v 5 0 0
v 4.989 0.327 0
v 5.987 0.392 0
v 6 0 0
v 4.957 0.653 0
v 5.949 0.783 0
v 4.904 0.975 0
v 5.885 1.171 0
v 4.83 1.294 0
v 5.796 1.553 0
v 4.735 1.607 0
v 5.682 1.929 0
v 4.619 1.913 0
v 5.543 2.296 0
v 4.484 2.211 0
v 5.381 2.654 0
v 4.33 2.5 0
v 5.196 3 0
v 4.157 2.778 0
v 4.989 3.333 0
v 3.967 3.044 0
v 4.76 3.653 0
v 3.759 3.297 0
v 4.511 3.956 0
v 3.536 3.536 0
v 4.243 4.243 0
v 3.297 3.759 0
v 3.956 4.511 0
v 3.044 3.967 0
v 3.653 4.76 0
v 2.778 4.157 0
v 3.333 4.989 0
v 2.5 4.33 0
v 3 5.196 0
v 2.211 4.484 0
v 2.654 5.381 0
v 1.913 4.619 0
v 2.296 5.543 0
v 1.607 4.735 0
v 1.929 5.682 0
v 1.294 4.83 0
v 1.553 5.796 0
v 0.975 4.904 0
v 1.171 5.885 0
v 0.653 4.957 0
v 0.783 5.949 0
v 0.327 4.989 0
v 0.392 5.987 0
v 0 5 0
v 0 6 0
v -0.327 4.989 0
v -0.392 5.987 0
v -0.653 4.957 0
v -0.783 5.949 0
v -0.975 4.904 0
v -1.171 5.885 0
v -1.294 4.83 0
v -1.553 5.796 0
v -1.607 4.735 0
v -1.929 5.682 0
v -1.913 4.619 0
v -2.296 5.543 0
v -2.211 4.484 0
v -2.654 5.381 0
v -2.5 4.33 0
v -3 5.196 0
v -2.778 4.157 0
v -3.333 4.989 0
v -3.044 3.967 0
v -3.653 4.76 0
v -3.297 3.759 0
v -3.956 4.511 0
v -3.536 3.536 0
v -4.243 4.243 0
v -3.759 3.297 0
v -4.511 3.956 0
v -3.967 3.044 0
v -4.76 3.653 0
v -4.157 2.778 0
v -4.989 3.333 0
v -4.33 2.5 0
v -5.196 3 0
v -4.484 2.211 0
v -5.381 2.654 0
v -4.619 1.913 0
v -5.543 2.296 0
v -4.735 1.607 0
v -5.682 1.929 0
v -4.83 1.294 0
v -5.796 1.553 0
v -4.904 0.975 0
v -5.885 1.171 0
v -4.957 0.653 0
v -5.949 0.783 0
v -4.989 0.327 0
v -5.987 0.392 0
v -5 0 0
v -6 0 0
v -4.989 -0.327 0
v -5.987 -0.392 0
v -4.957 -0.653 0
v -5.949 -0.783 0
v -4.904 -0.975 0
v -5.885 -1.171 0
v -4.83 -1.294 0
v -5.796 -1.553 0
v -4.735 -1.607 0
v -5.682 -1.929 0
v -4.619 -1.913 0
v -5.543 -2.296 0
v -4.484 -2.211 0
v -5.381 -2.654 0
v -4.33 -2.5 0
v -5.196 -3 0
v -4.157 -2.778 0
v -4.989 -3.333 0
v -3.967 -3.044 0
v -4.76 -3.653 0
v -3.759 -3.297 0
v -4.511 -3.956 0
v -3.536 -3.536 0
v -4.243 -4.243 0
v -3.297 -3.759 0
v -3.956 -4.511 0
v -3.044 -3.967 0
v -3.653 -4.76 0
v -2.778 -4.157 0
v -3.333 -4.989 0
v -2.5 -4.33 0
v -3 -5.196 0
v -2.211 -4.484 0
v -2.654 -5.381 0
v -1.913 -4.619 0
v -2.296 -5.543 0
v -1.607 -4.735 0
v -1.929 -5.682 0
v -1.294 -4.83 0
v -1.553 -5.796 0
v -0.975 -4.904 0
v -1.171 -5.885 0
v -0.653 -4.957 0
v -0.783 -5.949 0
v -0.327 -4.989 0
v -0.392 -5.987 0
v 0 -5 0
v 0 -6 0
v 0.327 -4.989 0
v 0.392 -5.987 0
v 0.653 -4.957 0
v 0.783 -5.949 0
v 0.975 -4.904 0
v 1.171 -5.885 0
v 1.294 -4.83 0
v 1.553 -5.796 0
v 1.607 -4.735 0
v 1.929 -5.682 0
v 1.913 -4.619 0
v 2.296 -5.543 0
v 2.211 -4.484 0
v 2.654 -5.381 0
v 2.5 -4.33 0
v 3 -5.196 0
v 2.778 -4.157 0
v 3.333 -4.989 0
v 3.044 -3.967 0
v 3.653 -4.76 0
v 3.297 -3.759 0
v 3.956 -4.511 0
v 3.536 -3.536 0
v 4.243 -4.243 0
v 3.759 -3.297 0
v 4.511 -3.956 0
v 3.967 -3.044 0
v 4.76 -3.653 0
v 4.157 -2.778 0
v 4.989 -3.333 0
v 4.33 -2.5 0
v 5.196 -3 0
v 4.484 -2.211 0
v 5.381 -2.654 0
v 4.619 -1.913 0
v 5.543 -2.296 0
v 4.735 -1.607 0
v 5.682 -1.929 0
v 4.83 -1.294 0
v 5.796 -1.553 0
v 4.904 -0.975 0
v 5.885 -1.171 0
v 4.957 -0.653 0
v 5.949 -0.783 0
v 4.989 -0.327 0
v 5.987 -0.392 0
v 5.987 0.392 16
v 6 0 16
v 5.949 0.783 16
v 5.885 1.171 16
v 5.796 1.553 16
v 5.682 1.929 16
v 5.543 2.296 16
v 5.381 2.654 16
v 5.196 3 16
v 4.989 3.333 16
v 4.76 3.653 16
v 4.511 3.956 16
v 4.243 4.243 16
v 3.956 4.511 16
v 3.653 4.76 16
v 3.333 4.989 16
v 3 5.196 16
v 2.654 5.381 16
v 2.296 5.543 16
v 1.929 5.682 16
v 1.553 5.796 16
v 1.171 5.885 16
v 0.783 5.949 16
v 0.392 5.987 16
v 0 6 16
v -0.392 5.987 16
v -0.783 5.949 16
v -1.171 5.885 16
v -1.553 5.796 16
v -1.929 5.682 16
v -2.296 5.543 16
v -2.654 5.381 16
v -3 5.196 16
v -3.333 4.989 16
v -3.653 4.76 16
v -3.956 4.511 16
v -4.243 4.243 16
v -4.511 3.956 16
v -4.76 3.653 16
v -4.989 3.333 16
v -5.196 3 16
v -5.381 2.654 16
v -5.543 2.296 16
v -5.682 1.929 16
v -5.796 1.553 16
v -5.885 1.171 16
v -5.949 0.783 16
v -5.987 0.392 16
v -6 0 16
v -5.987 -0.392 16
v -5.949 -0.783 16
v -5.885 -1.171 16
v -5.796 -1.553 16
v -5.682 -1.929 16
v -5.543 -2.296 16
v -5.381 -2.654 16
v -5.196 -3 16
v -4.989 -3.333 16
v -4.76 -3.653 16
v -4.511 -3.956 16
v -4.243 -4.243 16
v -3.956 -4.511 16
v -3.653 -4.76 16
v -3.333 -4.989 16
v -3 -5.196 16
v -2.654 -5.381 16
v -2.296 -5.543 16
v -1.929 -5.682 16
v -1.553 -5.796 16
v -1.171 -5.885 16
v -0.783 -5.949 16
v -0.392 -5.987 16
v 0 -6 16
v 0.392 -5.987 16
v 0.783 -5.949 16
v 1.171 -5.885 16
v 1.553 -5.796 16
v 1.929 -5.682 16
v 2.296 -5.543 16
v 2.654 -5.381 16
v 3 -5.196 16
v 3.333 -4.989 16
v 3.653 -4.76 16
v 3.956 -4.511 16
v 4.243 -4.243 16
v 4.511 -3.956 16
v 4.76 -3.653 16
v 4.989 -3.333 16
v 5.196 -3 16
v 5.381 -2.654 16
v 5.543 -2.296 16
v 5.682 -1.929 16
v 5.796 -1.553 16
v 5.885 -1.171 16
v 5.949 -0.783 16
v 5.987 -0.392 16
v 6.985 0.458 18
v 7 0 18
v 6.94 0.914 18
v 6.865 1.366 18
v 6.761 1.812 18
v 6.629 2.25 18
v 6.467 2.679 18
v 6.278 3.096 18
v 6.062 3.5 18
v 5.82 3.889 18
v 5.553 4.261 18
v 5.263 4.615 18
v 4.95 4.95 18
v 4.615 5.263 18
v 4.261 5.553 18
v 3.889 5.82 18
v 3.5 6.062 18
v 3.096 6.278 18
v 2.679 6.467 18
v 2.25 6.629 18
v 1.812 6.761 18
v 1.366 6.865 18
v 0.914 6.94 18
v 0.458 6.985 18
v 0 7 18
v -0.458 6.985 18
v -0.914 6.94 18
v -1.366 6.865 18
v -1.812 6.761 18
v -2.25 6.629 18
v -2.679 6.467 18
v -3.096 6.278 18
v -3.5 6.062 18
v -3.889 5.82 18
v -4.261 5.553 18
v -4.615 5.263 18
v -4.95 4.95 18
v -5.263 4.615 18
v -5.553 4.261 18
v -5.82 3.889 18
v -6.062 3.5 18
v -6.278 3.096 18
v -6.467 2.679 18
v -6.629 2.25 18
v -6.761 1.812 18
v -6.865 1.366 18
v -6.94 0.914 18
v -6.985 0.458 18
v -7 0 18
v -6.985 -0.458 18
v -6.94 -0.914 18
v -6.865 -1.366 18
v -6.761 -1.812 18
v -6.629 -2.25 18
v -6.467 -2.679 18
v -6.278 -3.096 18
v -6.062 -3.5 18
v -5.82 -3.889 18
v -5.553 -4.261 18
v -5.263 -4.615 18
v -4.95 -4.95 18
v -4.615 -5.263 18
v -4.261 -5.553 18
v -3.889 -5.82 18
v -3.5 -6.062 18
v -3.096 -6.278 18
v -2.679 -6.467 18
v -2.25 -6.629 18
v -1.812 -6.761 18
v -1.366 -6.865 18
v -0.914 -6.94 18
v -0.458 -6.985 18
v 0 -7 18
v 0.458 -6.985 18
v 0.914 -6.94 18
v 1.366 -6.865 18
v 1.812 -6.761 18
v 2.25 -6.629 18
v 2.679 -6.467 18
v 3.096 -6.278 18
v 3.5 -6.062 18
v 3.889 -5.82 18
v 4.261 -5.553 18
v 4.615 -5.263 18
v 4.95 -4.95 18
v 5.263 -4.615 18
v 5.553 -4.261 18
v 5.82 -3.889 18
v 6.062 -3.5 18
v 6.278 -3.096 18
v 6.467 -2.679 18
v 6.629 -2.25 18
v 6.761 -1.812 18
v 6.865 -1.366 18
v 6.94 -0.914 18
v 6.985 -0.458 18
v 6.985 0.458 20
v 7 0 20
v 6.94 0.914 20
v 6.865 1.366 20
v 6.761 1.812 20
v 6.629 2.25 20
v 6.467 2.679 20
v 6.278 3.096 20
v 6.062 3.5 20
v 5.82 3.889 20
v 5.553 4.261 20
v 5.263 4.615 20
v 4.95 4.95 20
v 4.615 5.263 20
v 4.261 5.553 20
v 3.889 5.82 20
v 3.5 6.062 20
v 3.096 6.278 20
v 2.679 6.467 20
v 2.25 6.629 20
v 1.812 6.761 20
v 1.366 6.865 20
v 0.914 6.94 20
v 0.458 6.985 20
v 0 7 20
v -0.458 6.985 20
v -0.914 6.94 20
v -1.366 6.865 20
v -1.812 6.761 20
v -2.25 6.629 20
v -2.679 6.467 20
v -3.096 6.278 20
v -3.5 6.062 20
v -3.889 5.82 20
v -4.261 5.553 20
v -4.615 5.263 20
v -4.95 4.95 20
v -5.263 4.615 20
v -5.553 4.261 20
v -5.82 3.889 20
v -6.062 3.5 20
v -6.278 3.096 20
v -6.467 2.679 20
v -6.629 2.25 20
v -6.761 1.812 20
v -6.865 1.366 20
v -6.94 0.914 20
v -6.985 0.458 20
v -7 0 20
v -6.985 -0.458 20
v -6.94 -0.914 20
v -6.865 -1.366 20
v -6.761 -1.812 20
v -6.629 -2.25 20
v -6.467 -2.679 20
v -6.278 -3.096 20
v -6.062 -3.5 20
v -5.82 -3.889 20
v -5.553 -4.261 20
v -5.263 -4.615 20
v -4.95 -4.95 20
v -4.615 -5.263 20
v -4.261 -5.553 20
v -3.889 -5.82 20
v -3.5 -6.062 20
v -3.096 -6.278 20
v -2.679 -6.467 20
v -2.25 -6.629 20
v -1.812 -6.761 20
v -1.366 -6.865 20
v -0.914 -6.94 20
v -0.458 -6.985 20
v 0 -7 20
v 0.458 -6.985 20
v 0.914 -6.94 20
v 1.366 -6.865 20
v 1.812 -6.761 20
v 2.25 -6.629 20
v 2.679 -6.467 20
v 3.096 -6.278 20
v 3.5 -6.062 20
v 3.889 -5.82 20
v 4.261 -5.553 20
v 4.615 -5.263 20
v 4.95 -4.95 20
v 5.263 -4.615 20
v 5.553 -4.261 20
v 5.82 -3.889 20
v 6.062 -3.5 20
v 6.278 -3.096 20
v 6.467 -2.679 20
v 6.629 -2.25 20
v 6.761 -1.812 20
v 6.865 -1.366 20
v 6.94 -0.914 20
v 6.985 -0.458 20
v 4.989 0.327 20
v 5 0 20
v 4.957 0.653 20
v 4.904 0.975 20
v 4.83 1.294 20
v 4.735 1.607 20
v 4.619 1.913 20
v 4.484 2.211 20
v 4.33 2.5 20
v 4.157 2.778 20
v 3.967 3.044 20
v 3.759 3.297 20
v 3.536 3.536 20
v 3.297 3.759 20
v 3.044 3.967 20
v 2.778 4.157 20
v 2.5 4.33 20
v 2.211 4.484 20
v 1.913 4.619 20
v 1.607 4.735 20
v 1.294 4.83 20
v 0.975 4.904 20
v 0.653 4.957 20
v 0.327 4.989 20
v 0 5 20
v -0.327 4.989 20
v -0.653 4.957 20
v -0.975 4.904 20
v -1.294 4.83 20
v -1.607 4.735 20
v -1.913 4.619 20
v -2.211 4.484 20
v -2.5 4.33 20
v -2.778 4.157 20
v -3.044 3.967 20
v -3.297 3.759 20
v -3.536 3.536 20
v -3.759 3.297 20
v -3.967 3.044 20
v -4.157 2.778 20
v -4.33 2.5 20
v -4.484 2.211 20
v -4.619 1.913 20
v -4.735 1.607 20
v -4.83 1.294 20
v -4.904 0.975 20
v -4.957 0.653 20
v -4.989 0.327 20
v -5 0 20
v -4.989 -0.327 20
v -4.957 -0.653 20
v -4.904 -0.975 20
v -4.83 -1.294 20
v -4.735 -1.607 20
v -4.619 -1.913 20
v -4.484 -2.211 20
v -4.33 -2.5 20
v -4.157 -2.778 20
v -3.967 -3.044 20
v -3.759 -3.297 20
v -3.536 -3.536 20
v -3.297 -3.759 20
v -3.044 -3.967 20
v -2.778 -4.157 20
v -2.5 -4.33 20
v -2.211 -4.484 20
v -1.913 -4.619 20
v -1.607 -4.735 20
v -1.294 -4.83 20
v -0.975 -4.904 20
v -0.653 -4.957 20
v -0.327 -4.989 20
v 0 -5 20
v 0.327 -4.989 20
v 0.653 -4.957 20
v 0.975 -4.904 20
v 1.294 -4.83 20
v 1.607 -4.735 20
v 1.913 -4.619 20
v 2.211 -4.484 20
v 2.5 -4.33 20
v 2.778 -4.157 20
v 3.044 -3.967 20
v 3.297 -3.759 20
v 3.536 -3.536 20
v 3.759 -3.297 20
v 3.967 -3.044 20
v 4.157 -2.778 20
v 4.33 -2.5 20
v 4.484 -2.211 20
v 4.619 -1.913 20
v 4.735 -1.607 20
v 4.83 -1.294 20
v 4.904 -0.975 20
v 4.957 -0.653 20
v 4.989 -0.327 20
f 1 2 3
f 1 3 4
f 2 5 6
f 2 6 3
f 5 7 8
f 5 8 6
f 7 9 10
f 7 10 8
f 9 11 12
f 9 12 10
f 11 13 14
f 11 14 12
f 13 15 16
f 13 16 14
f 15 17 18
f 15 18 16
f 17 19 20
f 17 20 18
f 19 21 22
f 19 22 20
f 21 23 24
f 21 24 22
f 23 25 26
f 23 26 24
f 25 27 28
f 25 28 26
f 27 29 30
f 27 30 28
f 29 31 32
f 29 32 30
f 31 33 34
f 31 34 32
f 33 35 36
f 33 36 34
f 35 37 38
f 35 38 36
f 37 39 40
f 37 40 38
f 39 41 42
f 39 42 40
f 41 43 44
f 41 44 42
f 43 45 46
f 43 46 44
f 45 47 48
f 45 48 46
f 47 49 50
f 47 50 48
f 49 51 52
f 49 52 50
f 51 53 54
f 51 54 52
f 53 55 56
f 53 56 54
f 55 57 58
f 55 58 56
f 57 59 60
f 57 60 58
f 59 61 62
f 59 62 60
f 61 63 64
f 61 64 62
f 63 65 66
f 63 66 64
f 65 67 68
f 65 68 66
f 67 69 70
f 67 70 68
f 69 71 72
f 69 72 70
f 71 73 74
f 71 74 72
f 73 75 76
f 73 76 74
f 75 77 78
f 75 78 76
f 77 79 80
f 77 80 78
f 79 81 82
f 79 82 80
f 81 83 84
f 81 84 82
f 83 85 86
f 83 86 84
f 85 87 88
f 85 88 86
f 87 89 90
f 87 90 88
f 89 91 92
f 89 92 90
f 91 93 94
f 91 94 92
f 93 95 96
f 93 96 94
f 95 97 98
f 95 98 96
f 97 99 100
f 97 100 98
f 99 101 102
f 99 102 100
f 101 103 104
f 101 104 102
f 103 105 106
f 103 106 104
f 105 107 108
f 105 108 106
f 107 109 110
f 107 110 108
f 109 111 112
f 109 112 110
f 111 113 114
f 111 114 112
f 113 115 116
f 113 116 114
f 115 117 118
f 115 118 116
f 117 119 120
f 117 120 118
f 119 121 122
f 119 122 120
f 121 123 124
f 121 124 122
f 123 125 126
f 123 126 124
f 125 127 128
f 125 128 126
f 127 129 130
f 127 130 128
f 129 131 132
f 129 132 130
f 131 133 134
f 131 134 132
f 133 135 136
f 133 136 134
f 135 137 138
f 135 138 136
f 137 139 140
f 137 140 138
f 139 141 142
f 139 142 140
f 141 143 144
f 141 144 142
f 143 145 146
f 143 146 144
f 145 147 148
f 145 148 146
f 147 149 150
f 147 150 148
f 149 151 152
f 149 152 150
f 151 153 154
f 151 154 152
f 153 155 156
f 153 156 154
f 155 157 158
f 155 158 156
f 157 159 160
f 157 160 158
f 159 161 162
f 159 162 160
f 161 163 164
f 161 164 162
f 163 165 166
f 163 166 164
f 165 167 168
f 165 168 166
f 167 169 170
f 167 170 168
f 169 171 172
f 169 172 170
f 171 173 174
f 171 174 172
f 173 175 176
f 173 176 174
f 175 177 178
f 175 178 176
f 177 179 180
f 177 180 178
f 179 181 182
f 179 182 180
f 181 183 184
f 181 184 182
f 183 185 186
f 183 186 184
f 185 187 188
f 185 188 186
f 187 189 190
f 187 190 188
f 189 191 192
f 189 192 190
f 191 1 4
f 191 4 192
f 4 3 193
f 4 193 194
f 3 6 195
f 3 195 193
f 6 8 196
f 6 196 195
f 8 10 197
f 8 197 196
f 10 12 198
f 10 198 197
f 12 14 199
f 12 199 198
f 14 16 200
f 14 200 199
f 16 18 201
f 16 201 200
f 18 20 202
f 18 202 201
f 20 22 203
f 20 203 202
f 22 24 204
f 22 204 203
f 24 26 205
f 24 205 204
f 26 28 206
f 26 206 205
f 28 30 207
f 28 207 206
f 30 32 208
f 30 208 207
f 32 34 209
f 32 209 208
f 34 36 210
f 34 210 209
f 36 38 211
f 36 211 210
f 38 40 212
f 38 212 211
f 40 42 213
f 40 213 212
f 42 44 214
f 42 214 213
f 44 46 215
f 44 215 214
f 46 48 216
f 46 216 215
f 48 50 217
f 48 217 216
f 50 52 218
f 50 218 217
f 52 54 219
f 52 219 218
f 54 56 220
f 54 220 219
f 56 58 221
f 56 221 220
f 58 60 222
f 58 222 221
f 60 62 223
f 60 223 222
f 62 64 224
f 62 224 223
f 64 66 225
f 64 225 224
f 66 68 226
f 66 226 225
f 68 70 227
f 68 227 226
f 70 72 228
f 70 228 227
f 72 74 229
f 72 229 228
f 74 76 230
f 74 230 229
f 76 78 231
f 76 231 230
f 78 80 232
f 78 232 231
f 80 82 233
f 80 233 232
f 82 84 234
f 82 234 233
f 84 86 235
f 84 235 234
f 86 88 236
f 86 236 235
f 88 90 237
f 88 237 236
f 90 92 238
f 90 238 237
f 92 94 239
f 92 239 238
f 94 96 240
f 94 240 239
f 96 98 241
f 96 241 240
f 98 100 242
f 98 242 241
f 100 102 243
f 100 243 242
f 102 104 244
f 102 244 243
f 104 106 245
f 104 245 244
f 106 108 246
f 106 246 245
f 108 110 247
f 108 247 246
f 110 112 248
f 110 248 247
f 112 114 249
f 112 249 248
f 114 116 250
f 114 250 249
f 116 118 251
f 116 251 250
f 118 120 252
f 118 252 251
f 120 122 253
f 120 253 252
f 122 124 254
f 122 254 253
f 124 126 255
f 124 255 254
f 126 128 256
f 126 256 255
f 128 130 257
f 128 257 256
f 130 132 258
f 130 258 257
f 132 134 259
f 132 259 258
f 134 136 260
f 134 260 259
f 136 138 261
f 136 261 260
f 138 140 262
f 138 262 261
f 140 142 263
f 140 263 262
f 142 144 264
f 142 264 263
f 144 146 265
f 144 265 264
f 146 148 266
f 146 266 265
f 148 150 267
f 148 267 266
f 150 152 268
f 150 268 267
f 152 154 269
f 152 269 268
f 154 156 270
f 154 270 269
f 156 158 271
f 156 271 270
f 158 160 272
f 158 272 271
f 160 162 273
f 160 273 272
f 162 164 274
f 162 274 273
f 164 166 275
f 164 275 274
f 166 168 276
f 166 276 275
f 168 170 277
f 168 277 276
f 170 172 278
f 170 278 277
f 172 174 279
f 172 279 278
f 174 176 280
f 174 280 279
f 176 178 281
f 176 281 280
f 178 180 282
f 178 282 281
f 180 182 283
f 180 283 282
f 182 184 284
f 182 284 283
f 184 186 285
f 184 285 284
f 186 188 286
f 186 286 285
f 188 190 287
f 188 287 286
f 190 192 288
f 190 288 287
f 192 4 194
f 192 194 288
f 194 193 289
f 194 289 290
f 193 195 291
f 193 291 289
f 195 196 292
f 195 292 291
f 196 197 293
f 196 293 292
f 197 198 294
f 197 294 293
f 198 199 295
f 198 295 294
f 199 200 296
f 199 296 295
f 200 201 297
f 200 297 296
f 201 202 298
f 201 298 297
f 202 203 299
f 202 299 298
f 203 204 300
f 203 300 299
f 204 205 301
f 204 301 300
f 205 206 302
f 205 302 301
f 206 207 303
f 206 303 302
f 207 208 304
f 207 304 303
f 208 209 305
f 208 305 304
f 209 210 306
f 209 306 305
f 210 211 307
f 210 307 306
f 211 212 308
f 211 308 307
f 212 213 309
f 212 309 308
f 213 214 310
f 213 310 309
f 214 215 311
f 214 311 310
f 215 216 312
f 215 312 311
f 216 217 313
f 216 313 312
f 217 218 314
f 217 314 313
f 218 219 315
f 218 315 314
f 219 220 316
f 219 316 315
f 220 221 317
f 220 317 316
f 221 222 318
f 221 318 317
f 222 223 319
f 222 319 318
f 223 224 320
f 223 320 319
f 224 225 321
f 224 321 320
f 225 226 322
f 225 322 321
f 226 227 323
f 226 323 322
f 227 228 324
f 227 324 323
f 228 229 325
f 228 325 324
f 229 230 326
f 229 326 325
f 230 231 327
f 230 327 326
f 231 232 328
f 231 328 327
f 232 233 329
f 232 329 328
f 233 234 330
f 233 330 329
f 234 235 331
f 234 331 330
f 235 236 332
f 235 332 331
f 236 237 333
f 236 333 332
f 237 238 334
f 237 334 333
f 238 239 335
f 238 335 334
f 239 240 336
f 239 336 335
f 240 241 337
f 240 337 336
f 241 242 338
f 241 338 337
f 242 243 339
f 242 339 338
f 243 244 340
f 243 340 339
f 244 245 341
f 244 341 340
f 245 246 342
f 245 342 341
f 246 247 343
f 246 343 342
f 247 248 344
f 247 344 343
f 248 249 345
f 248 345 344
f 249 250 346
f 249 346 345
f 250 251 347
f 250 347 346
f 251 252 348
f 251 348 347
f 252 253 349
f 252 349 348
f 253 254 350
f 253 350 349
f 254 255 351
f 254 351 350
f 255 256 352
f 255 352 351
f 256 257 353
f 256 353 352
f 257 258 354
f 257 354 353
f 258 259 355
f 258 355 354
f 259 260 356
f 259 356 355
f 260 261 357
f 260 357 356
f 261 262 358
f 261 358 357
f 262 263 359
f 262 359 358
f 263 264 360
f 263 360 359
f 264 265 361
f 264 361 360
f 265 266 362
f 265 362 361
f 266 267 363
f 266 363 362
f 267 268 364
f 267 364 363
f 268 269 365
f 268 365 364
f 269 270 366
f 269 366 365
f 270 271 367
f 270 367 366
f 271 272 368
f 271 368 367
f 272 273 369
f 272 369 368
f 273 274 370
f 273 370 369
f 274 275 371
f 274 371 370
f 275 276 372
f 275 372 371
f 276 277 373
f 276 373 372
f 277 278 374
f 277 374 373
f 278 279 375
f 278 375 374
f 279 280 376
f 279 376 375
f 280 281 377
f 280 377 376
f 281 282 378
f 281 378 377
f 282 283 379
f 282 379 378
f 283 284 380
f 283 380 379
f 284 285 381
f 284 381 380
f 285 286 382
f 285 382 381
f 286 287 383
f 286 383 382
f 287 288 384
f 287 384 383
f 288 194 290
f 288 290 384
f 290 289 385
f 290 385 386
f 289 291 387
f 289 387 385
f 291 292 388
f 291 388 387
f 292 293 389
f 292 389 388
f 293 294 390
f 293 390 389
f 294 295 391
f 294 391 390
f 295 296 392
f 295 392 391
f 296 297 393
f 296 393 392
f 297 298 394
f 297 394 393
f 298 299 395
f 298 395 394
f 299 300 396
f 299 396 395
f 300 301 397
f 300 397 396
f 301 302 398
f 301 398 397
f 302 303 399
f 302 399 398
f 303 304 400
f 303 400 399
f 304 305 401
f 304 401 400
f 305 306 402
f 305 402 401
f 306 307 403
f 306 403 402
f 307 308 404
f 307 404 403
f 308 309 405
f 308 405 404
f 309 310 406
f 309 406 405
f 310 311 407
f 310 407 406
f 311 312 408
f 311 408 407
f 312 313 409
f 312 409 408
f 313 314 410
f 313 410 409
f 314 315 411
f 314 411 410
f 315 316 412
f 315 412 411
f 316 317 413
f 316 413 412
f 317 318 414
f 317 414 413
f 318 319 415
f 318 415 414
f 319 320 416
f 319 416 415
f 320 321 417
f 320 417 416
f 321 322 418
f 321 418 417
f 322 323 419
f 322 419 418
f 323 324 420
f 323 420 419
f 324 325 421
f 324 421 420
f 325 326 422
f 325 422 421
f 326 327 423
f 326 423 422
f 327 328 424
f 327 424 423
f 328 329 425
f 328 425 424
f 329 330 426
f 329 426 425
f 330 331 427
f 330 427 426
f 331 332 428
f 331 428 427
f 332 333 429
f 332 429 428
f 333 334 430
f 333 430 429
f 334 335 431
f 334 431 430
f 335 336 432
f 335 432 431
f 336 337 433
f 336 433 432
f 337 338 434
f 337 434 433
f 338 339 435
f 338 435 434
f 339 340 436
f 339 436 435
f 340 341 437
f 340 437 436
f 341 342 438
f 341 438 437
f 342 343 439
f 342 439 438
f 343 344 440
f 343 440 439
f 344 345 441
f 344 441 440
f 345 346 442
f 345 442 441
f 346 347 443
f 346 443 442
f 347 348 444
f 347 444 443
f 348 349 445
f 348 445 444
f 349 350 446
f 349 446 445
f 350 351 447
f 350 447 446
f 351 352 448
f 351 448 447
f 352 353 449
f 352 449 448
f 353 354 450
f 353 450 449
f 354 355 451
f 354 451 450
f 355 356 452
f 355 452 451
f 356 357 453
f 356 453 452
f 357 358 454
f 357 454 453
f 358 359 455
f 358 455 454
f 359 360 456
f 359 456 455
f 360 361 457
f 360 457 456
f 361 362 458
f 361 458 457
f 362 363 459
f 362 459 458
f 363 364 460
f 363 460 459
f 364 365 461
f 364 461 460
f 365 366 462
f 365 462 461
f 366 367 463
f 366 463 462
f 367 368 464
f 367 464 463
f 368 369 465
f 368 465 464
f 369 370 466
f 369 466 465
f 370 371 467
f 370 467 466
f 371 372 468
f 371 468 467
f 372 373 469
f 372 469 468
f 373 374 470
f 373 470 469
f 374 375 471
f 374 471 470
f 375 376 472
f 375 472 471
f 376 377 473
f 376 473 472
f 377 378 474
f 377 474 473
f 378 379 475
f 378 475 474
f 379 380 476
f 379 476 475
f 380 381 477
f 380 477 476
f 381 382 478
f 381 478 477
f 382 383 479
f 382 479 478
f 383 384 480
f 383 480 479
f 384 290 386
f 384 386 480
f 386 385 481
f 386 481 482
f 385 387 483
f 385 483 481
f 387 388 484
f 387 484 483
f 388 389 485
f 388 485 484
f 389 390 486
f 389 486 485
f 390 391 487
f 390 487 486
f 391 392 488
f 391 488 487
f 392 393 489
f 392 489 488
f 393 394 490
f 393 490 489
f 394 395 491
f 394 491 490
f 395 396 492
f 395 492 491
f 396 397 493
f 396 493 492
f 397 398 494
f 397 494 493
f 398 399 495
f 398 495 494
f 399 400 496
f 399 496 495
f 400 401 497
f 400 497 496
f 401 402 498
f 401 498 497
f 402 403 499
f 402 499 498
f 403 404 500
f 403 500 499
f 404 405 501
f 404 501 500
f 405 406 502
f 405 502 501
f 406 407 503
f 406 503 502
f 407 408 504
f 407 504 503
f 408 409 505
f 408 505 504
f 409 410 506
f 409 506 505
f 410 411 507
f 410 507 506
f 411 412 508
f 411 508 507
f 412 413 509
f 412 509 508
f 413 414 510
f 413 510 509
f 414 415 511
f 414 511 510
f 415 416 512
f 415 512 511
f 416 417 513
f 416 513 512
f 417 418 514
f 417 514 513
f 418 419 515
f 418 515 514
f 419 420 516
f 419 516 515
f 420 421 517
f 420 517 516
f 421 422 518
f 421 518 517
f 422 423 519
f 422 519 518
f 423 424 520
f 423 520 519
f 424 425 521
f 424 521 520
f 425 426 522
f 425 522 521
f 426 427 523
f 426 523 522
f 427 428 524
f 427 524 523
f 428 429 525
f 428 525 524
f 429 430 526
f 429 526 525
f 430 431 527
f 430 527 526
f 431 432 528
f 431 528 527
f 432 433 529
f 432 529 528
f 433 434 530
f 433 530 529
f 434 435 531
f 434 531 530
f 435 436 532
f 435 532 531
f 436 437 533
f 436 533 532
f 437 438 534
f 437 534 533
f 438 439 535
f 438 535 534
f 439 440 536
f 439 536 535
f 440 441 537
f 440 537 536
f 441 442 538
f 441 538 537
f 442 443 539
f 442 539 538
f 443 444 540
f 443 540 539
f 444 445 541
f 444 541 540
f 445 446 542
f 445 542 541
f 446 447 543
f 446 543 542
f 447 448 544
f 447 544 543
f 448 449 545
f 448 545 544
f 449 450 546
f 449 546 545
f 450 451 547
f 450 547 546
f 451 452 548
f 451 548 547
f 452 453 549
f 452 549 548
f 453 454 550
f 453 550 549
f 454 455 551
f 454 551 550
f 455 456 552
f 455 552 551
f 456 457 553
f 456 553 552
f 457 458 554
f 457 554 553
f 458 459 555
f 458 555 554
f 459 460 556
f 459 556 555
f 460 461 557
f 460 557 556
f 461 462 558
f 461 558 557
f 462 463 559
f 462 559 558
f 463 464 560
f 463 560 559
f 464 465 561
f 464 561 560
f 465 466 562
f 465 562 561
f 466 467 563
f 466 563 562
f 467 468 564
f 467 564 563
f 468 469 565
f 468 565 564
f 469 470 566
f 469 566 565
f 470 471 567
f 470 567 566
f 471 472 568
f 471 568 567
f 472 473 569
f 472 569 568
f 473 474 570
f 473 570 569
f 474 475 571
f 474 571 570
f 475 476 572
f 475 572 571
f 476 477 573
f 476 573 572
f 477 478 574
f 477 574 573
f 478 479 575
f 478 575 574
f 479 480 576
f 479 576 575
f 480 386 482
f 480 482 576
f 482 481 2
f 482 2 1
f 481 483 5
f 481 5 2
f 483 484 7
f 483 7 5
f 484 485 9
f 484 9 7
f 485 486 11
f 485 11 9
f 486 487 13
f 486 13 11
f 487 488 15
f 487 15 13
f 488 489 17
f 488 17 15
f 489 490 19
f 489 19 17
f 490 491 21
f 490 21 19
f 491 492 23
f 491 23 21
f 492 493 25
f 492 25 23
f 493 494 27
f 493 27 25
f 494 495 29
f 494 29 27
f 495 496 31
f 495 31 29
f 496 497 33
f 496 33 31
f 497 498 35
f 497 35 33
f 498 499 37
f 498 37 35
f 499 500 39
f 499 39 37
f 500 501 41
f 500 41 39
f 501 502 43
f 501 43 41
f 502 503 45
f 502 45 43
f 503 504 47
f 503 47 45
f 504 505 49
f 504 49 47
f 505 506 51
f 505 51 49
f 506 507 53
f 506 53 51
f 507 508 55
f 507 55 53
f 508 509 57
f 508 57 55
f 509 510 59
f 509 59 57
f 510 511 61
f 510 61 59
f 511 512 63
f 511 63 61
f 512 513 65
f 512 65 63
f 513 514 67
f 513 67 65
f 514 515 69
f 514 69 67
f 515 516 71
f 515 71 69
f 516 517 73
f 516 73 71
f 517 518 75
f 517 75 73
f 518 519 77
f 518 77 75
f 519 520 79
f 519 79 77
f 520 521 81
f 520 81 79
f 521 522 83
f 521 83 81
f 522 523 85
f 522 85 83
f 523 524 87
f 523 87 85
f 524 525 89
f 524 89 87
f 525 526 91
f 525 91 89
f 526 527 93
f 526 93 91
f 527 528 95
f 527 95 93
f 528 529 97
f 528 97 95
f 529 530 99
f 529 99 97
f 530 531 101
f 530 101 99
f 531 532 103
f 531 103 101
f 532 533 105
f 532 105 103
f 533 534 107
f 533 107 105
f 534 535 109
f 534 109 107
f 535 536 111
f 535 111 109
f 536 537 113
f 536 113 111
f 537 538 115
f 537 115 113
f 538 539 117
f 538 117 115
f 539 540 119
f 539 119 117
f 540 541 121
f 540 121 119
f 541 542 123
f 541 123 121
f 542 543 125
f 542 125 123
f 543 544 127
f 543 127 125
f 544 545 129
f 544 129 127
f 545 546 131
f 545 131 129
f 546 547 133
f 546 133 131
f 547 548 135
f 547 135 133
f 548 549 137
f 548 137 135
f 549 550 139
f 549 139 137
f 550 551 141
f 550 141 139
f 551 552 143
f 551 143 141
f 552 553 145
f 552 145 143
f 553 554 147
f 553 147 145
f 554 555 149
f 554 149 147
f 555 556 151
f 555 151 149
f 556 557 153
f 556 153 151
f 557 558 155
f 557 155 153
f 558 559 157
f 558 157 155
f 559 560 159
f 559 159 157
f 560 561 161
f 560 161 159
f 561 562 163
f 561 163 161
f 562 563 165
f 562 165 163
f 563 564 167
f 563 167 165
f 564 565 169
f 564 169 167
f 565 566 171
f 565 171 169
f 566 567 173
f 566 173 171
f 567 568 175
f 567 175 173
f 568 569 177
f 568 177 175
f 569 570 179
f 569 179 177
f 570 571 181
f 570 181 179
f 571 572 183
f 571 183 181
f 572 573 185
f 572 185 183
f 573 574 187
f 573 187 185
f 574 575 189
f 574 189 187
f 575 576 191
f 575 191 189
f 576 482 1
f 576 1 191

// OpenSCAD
// Original MechIntel educational model. CC0-1.0. Units: mm.
// Not a standardized or load-rated component.
$fn=96;
// Section points: [radius, height], mm. Edit to change the profile.
section=[[5, 0], [6, 0], [6, 16], [7, 18], [7, 20], [5, 20]];
rotate_extrude($fn=96) polygon(points=section);
